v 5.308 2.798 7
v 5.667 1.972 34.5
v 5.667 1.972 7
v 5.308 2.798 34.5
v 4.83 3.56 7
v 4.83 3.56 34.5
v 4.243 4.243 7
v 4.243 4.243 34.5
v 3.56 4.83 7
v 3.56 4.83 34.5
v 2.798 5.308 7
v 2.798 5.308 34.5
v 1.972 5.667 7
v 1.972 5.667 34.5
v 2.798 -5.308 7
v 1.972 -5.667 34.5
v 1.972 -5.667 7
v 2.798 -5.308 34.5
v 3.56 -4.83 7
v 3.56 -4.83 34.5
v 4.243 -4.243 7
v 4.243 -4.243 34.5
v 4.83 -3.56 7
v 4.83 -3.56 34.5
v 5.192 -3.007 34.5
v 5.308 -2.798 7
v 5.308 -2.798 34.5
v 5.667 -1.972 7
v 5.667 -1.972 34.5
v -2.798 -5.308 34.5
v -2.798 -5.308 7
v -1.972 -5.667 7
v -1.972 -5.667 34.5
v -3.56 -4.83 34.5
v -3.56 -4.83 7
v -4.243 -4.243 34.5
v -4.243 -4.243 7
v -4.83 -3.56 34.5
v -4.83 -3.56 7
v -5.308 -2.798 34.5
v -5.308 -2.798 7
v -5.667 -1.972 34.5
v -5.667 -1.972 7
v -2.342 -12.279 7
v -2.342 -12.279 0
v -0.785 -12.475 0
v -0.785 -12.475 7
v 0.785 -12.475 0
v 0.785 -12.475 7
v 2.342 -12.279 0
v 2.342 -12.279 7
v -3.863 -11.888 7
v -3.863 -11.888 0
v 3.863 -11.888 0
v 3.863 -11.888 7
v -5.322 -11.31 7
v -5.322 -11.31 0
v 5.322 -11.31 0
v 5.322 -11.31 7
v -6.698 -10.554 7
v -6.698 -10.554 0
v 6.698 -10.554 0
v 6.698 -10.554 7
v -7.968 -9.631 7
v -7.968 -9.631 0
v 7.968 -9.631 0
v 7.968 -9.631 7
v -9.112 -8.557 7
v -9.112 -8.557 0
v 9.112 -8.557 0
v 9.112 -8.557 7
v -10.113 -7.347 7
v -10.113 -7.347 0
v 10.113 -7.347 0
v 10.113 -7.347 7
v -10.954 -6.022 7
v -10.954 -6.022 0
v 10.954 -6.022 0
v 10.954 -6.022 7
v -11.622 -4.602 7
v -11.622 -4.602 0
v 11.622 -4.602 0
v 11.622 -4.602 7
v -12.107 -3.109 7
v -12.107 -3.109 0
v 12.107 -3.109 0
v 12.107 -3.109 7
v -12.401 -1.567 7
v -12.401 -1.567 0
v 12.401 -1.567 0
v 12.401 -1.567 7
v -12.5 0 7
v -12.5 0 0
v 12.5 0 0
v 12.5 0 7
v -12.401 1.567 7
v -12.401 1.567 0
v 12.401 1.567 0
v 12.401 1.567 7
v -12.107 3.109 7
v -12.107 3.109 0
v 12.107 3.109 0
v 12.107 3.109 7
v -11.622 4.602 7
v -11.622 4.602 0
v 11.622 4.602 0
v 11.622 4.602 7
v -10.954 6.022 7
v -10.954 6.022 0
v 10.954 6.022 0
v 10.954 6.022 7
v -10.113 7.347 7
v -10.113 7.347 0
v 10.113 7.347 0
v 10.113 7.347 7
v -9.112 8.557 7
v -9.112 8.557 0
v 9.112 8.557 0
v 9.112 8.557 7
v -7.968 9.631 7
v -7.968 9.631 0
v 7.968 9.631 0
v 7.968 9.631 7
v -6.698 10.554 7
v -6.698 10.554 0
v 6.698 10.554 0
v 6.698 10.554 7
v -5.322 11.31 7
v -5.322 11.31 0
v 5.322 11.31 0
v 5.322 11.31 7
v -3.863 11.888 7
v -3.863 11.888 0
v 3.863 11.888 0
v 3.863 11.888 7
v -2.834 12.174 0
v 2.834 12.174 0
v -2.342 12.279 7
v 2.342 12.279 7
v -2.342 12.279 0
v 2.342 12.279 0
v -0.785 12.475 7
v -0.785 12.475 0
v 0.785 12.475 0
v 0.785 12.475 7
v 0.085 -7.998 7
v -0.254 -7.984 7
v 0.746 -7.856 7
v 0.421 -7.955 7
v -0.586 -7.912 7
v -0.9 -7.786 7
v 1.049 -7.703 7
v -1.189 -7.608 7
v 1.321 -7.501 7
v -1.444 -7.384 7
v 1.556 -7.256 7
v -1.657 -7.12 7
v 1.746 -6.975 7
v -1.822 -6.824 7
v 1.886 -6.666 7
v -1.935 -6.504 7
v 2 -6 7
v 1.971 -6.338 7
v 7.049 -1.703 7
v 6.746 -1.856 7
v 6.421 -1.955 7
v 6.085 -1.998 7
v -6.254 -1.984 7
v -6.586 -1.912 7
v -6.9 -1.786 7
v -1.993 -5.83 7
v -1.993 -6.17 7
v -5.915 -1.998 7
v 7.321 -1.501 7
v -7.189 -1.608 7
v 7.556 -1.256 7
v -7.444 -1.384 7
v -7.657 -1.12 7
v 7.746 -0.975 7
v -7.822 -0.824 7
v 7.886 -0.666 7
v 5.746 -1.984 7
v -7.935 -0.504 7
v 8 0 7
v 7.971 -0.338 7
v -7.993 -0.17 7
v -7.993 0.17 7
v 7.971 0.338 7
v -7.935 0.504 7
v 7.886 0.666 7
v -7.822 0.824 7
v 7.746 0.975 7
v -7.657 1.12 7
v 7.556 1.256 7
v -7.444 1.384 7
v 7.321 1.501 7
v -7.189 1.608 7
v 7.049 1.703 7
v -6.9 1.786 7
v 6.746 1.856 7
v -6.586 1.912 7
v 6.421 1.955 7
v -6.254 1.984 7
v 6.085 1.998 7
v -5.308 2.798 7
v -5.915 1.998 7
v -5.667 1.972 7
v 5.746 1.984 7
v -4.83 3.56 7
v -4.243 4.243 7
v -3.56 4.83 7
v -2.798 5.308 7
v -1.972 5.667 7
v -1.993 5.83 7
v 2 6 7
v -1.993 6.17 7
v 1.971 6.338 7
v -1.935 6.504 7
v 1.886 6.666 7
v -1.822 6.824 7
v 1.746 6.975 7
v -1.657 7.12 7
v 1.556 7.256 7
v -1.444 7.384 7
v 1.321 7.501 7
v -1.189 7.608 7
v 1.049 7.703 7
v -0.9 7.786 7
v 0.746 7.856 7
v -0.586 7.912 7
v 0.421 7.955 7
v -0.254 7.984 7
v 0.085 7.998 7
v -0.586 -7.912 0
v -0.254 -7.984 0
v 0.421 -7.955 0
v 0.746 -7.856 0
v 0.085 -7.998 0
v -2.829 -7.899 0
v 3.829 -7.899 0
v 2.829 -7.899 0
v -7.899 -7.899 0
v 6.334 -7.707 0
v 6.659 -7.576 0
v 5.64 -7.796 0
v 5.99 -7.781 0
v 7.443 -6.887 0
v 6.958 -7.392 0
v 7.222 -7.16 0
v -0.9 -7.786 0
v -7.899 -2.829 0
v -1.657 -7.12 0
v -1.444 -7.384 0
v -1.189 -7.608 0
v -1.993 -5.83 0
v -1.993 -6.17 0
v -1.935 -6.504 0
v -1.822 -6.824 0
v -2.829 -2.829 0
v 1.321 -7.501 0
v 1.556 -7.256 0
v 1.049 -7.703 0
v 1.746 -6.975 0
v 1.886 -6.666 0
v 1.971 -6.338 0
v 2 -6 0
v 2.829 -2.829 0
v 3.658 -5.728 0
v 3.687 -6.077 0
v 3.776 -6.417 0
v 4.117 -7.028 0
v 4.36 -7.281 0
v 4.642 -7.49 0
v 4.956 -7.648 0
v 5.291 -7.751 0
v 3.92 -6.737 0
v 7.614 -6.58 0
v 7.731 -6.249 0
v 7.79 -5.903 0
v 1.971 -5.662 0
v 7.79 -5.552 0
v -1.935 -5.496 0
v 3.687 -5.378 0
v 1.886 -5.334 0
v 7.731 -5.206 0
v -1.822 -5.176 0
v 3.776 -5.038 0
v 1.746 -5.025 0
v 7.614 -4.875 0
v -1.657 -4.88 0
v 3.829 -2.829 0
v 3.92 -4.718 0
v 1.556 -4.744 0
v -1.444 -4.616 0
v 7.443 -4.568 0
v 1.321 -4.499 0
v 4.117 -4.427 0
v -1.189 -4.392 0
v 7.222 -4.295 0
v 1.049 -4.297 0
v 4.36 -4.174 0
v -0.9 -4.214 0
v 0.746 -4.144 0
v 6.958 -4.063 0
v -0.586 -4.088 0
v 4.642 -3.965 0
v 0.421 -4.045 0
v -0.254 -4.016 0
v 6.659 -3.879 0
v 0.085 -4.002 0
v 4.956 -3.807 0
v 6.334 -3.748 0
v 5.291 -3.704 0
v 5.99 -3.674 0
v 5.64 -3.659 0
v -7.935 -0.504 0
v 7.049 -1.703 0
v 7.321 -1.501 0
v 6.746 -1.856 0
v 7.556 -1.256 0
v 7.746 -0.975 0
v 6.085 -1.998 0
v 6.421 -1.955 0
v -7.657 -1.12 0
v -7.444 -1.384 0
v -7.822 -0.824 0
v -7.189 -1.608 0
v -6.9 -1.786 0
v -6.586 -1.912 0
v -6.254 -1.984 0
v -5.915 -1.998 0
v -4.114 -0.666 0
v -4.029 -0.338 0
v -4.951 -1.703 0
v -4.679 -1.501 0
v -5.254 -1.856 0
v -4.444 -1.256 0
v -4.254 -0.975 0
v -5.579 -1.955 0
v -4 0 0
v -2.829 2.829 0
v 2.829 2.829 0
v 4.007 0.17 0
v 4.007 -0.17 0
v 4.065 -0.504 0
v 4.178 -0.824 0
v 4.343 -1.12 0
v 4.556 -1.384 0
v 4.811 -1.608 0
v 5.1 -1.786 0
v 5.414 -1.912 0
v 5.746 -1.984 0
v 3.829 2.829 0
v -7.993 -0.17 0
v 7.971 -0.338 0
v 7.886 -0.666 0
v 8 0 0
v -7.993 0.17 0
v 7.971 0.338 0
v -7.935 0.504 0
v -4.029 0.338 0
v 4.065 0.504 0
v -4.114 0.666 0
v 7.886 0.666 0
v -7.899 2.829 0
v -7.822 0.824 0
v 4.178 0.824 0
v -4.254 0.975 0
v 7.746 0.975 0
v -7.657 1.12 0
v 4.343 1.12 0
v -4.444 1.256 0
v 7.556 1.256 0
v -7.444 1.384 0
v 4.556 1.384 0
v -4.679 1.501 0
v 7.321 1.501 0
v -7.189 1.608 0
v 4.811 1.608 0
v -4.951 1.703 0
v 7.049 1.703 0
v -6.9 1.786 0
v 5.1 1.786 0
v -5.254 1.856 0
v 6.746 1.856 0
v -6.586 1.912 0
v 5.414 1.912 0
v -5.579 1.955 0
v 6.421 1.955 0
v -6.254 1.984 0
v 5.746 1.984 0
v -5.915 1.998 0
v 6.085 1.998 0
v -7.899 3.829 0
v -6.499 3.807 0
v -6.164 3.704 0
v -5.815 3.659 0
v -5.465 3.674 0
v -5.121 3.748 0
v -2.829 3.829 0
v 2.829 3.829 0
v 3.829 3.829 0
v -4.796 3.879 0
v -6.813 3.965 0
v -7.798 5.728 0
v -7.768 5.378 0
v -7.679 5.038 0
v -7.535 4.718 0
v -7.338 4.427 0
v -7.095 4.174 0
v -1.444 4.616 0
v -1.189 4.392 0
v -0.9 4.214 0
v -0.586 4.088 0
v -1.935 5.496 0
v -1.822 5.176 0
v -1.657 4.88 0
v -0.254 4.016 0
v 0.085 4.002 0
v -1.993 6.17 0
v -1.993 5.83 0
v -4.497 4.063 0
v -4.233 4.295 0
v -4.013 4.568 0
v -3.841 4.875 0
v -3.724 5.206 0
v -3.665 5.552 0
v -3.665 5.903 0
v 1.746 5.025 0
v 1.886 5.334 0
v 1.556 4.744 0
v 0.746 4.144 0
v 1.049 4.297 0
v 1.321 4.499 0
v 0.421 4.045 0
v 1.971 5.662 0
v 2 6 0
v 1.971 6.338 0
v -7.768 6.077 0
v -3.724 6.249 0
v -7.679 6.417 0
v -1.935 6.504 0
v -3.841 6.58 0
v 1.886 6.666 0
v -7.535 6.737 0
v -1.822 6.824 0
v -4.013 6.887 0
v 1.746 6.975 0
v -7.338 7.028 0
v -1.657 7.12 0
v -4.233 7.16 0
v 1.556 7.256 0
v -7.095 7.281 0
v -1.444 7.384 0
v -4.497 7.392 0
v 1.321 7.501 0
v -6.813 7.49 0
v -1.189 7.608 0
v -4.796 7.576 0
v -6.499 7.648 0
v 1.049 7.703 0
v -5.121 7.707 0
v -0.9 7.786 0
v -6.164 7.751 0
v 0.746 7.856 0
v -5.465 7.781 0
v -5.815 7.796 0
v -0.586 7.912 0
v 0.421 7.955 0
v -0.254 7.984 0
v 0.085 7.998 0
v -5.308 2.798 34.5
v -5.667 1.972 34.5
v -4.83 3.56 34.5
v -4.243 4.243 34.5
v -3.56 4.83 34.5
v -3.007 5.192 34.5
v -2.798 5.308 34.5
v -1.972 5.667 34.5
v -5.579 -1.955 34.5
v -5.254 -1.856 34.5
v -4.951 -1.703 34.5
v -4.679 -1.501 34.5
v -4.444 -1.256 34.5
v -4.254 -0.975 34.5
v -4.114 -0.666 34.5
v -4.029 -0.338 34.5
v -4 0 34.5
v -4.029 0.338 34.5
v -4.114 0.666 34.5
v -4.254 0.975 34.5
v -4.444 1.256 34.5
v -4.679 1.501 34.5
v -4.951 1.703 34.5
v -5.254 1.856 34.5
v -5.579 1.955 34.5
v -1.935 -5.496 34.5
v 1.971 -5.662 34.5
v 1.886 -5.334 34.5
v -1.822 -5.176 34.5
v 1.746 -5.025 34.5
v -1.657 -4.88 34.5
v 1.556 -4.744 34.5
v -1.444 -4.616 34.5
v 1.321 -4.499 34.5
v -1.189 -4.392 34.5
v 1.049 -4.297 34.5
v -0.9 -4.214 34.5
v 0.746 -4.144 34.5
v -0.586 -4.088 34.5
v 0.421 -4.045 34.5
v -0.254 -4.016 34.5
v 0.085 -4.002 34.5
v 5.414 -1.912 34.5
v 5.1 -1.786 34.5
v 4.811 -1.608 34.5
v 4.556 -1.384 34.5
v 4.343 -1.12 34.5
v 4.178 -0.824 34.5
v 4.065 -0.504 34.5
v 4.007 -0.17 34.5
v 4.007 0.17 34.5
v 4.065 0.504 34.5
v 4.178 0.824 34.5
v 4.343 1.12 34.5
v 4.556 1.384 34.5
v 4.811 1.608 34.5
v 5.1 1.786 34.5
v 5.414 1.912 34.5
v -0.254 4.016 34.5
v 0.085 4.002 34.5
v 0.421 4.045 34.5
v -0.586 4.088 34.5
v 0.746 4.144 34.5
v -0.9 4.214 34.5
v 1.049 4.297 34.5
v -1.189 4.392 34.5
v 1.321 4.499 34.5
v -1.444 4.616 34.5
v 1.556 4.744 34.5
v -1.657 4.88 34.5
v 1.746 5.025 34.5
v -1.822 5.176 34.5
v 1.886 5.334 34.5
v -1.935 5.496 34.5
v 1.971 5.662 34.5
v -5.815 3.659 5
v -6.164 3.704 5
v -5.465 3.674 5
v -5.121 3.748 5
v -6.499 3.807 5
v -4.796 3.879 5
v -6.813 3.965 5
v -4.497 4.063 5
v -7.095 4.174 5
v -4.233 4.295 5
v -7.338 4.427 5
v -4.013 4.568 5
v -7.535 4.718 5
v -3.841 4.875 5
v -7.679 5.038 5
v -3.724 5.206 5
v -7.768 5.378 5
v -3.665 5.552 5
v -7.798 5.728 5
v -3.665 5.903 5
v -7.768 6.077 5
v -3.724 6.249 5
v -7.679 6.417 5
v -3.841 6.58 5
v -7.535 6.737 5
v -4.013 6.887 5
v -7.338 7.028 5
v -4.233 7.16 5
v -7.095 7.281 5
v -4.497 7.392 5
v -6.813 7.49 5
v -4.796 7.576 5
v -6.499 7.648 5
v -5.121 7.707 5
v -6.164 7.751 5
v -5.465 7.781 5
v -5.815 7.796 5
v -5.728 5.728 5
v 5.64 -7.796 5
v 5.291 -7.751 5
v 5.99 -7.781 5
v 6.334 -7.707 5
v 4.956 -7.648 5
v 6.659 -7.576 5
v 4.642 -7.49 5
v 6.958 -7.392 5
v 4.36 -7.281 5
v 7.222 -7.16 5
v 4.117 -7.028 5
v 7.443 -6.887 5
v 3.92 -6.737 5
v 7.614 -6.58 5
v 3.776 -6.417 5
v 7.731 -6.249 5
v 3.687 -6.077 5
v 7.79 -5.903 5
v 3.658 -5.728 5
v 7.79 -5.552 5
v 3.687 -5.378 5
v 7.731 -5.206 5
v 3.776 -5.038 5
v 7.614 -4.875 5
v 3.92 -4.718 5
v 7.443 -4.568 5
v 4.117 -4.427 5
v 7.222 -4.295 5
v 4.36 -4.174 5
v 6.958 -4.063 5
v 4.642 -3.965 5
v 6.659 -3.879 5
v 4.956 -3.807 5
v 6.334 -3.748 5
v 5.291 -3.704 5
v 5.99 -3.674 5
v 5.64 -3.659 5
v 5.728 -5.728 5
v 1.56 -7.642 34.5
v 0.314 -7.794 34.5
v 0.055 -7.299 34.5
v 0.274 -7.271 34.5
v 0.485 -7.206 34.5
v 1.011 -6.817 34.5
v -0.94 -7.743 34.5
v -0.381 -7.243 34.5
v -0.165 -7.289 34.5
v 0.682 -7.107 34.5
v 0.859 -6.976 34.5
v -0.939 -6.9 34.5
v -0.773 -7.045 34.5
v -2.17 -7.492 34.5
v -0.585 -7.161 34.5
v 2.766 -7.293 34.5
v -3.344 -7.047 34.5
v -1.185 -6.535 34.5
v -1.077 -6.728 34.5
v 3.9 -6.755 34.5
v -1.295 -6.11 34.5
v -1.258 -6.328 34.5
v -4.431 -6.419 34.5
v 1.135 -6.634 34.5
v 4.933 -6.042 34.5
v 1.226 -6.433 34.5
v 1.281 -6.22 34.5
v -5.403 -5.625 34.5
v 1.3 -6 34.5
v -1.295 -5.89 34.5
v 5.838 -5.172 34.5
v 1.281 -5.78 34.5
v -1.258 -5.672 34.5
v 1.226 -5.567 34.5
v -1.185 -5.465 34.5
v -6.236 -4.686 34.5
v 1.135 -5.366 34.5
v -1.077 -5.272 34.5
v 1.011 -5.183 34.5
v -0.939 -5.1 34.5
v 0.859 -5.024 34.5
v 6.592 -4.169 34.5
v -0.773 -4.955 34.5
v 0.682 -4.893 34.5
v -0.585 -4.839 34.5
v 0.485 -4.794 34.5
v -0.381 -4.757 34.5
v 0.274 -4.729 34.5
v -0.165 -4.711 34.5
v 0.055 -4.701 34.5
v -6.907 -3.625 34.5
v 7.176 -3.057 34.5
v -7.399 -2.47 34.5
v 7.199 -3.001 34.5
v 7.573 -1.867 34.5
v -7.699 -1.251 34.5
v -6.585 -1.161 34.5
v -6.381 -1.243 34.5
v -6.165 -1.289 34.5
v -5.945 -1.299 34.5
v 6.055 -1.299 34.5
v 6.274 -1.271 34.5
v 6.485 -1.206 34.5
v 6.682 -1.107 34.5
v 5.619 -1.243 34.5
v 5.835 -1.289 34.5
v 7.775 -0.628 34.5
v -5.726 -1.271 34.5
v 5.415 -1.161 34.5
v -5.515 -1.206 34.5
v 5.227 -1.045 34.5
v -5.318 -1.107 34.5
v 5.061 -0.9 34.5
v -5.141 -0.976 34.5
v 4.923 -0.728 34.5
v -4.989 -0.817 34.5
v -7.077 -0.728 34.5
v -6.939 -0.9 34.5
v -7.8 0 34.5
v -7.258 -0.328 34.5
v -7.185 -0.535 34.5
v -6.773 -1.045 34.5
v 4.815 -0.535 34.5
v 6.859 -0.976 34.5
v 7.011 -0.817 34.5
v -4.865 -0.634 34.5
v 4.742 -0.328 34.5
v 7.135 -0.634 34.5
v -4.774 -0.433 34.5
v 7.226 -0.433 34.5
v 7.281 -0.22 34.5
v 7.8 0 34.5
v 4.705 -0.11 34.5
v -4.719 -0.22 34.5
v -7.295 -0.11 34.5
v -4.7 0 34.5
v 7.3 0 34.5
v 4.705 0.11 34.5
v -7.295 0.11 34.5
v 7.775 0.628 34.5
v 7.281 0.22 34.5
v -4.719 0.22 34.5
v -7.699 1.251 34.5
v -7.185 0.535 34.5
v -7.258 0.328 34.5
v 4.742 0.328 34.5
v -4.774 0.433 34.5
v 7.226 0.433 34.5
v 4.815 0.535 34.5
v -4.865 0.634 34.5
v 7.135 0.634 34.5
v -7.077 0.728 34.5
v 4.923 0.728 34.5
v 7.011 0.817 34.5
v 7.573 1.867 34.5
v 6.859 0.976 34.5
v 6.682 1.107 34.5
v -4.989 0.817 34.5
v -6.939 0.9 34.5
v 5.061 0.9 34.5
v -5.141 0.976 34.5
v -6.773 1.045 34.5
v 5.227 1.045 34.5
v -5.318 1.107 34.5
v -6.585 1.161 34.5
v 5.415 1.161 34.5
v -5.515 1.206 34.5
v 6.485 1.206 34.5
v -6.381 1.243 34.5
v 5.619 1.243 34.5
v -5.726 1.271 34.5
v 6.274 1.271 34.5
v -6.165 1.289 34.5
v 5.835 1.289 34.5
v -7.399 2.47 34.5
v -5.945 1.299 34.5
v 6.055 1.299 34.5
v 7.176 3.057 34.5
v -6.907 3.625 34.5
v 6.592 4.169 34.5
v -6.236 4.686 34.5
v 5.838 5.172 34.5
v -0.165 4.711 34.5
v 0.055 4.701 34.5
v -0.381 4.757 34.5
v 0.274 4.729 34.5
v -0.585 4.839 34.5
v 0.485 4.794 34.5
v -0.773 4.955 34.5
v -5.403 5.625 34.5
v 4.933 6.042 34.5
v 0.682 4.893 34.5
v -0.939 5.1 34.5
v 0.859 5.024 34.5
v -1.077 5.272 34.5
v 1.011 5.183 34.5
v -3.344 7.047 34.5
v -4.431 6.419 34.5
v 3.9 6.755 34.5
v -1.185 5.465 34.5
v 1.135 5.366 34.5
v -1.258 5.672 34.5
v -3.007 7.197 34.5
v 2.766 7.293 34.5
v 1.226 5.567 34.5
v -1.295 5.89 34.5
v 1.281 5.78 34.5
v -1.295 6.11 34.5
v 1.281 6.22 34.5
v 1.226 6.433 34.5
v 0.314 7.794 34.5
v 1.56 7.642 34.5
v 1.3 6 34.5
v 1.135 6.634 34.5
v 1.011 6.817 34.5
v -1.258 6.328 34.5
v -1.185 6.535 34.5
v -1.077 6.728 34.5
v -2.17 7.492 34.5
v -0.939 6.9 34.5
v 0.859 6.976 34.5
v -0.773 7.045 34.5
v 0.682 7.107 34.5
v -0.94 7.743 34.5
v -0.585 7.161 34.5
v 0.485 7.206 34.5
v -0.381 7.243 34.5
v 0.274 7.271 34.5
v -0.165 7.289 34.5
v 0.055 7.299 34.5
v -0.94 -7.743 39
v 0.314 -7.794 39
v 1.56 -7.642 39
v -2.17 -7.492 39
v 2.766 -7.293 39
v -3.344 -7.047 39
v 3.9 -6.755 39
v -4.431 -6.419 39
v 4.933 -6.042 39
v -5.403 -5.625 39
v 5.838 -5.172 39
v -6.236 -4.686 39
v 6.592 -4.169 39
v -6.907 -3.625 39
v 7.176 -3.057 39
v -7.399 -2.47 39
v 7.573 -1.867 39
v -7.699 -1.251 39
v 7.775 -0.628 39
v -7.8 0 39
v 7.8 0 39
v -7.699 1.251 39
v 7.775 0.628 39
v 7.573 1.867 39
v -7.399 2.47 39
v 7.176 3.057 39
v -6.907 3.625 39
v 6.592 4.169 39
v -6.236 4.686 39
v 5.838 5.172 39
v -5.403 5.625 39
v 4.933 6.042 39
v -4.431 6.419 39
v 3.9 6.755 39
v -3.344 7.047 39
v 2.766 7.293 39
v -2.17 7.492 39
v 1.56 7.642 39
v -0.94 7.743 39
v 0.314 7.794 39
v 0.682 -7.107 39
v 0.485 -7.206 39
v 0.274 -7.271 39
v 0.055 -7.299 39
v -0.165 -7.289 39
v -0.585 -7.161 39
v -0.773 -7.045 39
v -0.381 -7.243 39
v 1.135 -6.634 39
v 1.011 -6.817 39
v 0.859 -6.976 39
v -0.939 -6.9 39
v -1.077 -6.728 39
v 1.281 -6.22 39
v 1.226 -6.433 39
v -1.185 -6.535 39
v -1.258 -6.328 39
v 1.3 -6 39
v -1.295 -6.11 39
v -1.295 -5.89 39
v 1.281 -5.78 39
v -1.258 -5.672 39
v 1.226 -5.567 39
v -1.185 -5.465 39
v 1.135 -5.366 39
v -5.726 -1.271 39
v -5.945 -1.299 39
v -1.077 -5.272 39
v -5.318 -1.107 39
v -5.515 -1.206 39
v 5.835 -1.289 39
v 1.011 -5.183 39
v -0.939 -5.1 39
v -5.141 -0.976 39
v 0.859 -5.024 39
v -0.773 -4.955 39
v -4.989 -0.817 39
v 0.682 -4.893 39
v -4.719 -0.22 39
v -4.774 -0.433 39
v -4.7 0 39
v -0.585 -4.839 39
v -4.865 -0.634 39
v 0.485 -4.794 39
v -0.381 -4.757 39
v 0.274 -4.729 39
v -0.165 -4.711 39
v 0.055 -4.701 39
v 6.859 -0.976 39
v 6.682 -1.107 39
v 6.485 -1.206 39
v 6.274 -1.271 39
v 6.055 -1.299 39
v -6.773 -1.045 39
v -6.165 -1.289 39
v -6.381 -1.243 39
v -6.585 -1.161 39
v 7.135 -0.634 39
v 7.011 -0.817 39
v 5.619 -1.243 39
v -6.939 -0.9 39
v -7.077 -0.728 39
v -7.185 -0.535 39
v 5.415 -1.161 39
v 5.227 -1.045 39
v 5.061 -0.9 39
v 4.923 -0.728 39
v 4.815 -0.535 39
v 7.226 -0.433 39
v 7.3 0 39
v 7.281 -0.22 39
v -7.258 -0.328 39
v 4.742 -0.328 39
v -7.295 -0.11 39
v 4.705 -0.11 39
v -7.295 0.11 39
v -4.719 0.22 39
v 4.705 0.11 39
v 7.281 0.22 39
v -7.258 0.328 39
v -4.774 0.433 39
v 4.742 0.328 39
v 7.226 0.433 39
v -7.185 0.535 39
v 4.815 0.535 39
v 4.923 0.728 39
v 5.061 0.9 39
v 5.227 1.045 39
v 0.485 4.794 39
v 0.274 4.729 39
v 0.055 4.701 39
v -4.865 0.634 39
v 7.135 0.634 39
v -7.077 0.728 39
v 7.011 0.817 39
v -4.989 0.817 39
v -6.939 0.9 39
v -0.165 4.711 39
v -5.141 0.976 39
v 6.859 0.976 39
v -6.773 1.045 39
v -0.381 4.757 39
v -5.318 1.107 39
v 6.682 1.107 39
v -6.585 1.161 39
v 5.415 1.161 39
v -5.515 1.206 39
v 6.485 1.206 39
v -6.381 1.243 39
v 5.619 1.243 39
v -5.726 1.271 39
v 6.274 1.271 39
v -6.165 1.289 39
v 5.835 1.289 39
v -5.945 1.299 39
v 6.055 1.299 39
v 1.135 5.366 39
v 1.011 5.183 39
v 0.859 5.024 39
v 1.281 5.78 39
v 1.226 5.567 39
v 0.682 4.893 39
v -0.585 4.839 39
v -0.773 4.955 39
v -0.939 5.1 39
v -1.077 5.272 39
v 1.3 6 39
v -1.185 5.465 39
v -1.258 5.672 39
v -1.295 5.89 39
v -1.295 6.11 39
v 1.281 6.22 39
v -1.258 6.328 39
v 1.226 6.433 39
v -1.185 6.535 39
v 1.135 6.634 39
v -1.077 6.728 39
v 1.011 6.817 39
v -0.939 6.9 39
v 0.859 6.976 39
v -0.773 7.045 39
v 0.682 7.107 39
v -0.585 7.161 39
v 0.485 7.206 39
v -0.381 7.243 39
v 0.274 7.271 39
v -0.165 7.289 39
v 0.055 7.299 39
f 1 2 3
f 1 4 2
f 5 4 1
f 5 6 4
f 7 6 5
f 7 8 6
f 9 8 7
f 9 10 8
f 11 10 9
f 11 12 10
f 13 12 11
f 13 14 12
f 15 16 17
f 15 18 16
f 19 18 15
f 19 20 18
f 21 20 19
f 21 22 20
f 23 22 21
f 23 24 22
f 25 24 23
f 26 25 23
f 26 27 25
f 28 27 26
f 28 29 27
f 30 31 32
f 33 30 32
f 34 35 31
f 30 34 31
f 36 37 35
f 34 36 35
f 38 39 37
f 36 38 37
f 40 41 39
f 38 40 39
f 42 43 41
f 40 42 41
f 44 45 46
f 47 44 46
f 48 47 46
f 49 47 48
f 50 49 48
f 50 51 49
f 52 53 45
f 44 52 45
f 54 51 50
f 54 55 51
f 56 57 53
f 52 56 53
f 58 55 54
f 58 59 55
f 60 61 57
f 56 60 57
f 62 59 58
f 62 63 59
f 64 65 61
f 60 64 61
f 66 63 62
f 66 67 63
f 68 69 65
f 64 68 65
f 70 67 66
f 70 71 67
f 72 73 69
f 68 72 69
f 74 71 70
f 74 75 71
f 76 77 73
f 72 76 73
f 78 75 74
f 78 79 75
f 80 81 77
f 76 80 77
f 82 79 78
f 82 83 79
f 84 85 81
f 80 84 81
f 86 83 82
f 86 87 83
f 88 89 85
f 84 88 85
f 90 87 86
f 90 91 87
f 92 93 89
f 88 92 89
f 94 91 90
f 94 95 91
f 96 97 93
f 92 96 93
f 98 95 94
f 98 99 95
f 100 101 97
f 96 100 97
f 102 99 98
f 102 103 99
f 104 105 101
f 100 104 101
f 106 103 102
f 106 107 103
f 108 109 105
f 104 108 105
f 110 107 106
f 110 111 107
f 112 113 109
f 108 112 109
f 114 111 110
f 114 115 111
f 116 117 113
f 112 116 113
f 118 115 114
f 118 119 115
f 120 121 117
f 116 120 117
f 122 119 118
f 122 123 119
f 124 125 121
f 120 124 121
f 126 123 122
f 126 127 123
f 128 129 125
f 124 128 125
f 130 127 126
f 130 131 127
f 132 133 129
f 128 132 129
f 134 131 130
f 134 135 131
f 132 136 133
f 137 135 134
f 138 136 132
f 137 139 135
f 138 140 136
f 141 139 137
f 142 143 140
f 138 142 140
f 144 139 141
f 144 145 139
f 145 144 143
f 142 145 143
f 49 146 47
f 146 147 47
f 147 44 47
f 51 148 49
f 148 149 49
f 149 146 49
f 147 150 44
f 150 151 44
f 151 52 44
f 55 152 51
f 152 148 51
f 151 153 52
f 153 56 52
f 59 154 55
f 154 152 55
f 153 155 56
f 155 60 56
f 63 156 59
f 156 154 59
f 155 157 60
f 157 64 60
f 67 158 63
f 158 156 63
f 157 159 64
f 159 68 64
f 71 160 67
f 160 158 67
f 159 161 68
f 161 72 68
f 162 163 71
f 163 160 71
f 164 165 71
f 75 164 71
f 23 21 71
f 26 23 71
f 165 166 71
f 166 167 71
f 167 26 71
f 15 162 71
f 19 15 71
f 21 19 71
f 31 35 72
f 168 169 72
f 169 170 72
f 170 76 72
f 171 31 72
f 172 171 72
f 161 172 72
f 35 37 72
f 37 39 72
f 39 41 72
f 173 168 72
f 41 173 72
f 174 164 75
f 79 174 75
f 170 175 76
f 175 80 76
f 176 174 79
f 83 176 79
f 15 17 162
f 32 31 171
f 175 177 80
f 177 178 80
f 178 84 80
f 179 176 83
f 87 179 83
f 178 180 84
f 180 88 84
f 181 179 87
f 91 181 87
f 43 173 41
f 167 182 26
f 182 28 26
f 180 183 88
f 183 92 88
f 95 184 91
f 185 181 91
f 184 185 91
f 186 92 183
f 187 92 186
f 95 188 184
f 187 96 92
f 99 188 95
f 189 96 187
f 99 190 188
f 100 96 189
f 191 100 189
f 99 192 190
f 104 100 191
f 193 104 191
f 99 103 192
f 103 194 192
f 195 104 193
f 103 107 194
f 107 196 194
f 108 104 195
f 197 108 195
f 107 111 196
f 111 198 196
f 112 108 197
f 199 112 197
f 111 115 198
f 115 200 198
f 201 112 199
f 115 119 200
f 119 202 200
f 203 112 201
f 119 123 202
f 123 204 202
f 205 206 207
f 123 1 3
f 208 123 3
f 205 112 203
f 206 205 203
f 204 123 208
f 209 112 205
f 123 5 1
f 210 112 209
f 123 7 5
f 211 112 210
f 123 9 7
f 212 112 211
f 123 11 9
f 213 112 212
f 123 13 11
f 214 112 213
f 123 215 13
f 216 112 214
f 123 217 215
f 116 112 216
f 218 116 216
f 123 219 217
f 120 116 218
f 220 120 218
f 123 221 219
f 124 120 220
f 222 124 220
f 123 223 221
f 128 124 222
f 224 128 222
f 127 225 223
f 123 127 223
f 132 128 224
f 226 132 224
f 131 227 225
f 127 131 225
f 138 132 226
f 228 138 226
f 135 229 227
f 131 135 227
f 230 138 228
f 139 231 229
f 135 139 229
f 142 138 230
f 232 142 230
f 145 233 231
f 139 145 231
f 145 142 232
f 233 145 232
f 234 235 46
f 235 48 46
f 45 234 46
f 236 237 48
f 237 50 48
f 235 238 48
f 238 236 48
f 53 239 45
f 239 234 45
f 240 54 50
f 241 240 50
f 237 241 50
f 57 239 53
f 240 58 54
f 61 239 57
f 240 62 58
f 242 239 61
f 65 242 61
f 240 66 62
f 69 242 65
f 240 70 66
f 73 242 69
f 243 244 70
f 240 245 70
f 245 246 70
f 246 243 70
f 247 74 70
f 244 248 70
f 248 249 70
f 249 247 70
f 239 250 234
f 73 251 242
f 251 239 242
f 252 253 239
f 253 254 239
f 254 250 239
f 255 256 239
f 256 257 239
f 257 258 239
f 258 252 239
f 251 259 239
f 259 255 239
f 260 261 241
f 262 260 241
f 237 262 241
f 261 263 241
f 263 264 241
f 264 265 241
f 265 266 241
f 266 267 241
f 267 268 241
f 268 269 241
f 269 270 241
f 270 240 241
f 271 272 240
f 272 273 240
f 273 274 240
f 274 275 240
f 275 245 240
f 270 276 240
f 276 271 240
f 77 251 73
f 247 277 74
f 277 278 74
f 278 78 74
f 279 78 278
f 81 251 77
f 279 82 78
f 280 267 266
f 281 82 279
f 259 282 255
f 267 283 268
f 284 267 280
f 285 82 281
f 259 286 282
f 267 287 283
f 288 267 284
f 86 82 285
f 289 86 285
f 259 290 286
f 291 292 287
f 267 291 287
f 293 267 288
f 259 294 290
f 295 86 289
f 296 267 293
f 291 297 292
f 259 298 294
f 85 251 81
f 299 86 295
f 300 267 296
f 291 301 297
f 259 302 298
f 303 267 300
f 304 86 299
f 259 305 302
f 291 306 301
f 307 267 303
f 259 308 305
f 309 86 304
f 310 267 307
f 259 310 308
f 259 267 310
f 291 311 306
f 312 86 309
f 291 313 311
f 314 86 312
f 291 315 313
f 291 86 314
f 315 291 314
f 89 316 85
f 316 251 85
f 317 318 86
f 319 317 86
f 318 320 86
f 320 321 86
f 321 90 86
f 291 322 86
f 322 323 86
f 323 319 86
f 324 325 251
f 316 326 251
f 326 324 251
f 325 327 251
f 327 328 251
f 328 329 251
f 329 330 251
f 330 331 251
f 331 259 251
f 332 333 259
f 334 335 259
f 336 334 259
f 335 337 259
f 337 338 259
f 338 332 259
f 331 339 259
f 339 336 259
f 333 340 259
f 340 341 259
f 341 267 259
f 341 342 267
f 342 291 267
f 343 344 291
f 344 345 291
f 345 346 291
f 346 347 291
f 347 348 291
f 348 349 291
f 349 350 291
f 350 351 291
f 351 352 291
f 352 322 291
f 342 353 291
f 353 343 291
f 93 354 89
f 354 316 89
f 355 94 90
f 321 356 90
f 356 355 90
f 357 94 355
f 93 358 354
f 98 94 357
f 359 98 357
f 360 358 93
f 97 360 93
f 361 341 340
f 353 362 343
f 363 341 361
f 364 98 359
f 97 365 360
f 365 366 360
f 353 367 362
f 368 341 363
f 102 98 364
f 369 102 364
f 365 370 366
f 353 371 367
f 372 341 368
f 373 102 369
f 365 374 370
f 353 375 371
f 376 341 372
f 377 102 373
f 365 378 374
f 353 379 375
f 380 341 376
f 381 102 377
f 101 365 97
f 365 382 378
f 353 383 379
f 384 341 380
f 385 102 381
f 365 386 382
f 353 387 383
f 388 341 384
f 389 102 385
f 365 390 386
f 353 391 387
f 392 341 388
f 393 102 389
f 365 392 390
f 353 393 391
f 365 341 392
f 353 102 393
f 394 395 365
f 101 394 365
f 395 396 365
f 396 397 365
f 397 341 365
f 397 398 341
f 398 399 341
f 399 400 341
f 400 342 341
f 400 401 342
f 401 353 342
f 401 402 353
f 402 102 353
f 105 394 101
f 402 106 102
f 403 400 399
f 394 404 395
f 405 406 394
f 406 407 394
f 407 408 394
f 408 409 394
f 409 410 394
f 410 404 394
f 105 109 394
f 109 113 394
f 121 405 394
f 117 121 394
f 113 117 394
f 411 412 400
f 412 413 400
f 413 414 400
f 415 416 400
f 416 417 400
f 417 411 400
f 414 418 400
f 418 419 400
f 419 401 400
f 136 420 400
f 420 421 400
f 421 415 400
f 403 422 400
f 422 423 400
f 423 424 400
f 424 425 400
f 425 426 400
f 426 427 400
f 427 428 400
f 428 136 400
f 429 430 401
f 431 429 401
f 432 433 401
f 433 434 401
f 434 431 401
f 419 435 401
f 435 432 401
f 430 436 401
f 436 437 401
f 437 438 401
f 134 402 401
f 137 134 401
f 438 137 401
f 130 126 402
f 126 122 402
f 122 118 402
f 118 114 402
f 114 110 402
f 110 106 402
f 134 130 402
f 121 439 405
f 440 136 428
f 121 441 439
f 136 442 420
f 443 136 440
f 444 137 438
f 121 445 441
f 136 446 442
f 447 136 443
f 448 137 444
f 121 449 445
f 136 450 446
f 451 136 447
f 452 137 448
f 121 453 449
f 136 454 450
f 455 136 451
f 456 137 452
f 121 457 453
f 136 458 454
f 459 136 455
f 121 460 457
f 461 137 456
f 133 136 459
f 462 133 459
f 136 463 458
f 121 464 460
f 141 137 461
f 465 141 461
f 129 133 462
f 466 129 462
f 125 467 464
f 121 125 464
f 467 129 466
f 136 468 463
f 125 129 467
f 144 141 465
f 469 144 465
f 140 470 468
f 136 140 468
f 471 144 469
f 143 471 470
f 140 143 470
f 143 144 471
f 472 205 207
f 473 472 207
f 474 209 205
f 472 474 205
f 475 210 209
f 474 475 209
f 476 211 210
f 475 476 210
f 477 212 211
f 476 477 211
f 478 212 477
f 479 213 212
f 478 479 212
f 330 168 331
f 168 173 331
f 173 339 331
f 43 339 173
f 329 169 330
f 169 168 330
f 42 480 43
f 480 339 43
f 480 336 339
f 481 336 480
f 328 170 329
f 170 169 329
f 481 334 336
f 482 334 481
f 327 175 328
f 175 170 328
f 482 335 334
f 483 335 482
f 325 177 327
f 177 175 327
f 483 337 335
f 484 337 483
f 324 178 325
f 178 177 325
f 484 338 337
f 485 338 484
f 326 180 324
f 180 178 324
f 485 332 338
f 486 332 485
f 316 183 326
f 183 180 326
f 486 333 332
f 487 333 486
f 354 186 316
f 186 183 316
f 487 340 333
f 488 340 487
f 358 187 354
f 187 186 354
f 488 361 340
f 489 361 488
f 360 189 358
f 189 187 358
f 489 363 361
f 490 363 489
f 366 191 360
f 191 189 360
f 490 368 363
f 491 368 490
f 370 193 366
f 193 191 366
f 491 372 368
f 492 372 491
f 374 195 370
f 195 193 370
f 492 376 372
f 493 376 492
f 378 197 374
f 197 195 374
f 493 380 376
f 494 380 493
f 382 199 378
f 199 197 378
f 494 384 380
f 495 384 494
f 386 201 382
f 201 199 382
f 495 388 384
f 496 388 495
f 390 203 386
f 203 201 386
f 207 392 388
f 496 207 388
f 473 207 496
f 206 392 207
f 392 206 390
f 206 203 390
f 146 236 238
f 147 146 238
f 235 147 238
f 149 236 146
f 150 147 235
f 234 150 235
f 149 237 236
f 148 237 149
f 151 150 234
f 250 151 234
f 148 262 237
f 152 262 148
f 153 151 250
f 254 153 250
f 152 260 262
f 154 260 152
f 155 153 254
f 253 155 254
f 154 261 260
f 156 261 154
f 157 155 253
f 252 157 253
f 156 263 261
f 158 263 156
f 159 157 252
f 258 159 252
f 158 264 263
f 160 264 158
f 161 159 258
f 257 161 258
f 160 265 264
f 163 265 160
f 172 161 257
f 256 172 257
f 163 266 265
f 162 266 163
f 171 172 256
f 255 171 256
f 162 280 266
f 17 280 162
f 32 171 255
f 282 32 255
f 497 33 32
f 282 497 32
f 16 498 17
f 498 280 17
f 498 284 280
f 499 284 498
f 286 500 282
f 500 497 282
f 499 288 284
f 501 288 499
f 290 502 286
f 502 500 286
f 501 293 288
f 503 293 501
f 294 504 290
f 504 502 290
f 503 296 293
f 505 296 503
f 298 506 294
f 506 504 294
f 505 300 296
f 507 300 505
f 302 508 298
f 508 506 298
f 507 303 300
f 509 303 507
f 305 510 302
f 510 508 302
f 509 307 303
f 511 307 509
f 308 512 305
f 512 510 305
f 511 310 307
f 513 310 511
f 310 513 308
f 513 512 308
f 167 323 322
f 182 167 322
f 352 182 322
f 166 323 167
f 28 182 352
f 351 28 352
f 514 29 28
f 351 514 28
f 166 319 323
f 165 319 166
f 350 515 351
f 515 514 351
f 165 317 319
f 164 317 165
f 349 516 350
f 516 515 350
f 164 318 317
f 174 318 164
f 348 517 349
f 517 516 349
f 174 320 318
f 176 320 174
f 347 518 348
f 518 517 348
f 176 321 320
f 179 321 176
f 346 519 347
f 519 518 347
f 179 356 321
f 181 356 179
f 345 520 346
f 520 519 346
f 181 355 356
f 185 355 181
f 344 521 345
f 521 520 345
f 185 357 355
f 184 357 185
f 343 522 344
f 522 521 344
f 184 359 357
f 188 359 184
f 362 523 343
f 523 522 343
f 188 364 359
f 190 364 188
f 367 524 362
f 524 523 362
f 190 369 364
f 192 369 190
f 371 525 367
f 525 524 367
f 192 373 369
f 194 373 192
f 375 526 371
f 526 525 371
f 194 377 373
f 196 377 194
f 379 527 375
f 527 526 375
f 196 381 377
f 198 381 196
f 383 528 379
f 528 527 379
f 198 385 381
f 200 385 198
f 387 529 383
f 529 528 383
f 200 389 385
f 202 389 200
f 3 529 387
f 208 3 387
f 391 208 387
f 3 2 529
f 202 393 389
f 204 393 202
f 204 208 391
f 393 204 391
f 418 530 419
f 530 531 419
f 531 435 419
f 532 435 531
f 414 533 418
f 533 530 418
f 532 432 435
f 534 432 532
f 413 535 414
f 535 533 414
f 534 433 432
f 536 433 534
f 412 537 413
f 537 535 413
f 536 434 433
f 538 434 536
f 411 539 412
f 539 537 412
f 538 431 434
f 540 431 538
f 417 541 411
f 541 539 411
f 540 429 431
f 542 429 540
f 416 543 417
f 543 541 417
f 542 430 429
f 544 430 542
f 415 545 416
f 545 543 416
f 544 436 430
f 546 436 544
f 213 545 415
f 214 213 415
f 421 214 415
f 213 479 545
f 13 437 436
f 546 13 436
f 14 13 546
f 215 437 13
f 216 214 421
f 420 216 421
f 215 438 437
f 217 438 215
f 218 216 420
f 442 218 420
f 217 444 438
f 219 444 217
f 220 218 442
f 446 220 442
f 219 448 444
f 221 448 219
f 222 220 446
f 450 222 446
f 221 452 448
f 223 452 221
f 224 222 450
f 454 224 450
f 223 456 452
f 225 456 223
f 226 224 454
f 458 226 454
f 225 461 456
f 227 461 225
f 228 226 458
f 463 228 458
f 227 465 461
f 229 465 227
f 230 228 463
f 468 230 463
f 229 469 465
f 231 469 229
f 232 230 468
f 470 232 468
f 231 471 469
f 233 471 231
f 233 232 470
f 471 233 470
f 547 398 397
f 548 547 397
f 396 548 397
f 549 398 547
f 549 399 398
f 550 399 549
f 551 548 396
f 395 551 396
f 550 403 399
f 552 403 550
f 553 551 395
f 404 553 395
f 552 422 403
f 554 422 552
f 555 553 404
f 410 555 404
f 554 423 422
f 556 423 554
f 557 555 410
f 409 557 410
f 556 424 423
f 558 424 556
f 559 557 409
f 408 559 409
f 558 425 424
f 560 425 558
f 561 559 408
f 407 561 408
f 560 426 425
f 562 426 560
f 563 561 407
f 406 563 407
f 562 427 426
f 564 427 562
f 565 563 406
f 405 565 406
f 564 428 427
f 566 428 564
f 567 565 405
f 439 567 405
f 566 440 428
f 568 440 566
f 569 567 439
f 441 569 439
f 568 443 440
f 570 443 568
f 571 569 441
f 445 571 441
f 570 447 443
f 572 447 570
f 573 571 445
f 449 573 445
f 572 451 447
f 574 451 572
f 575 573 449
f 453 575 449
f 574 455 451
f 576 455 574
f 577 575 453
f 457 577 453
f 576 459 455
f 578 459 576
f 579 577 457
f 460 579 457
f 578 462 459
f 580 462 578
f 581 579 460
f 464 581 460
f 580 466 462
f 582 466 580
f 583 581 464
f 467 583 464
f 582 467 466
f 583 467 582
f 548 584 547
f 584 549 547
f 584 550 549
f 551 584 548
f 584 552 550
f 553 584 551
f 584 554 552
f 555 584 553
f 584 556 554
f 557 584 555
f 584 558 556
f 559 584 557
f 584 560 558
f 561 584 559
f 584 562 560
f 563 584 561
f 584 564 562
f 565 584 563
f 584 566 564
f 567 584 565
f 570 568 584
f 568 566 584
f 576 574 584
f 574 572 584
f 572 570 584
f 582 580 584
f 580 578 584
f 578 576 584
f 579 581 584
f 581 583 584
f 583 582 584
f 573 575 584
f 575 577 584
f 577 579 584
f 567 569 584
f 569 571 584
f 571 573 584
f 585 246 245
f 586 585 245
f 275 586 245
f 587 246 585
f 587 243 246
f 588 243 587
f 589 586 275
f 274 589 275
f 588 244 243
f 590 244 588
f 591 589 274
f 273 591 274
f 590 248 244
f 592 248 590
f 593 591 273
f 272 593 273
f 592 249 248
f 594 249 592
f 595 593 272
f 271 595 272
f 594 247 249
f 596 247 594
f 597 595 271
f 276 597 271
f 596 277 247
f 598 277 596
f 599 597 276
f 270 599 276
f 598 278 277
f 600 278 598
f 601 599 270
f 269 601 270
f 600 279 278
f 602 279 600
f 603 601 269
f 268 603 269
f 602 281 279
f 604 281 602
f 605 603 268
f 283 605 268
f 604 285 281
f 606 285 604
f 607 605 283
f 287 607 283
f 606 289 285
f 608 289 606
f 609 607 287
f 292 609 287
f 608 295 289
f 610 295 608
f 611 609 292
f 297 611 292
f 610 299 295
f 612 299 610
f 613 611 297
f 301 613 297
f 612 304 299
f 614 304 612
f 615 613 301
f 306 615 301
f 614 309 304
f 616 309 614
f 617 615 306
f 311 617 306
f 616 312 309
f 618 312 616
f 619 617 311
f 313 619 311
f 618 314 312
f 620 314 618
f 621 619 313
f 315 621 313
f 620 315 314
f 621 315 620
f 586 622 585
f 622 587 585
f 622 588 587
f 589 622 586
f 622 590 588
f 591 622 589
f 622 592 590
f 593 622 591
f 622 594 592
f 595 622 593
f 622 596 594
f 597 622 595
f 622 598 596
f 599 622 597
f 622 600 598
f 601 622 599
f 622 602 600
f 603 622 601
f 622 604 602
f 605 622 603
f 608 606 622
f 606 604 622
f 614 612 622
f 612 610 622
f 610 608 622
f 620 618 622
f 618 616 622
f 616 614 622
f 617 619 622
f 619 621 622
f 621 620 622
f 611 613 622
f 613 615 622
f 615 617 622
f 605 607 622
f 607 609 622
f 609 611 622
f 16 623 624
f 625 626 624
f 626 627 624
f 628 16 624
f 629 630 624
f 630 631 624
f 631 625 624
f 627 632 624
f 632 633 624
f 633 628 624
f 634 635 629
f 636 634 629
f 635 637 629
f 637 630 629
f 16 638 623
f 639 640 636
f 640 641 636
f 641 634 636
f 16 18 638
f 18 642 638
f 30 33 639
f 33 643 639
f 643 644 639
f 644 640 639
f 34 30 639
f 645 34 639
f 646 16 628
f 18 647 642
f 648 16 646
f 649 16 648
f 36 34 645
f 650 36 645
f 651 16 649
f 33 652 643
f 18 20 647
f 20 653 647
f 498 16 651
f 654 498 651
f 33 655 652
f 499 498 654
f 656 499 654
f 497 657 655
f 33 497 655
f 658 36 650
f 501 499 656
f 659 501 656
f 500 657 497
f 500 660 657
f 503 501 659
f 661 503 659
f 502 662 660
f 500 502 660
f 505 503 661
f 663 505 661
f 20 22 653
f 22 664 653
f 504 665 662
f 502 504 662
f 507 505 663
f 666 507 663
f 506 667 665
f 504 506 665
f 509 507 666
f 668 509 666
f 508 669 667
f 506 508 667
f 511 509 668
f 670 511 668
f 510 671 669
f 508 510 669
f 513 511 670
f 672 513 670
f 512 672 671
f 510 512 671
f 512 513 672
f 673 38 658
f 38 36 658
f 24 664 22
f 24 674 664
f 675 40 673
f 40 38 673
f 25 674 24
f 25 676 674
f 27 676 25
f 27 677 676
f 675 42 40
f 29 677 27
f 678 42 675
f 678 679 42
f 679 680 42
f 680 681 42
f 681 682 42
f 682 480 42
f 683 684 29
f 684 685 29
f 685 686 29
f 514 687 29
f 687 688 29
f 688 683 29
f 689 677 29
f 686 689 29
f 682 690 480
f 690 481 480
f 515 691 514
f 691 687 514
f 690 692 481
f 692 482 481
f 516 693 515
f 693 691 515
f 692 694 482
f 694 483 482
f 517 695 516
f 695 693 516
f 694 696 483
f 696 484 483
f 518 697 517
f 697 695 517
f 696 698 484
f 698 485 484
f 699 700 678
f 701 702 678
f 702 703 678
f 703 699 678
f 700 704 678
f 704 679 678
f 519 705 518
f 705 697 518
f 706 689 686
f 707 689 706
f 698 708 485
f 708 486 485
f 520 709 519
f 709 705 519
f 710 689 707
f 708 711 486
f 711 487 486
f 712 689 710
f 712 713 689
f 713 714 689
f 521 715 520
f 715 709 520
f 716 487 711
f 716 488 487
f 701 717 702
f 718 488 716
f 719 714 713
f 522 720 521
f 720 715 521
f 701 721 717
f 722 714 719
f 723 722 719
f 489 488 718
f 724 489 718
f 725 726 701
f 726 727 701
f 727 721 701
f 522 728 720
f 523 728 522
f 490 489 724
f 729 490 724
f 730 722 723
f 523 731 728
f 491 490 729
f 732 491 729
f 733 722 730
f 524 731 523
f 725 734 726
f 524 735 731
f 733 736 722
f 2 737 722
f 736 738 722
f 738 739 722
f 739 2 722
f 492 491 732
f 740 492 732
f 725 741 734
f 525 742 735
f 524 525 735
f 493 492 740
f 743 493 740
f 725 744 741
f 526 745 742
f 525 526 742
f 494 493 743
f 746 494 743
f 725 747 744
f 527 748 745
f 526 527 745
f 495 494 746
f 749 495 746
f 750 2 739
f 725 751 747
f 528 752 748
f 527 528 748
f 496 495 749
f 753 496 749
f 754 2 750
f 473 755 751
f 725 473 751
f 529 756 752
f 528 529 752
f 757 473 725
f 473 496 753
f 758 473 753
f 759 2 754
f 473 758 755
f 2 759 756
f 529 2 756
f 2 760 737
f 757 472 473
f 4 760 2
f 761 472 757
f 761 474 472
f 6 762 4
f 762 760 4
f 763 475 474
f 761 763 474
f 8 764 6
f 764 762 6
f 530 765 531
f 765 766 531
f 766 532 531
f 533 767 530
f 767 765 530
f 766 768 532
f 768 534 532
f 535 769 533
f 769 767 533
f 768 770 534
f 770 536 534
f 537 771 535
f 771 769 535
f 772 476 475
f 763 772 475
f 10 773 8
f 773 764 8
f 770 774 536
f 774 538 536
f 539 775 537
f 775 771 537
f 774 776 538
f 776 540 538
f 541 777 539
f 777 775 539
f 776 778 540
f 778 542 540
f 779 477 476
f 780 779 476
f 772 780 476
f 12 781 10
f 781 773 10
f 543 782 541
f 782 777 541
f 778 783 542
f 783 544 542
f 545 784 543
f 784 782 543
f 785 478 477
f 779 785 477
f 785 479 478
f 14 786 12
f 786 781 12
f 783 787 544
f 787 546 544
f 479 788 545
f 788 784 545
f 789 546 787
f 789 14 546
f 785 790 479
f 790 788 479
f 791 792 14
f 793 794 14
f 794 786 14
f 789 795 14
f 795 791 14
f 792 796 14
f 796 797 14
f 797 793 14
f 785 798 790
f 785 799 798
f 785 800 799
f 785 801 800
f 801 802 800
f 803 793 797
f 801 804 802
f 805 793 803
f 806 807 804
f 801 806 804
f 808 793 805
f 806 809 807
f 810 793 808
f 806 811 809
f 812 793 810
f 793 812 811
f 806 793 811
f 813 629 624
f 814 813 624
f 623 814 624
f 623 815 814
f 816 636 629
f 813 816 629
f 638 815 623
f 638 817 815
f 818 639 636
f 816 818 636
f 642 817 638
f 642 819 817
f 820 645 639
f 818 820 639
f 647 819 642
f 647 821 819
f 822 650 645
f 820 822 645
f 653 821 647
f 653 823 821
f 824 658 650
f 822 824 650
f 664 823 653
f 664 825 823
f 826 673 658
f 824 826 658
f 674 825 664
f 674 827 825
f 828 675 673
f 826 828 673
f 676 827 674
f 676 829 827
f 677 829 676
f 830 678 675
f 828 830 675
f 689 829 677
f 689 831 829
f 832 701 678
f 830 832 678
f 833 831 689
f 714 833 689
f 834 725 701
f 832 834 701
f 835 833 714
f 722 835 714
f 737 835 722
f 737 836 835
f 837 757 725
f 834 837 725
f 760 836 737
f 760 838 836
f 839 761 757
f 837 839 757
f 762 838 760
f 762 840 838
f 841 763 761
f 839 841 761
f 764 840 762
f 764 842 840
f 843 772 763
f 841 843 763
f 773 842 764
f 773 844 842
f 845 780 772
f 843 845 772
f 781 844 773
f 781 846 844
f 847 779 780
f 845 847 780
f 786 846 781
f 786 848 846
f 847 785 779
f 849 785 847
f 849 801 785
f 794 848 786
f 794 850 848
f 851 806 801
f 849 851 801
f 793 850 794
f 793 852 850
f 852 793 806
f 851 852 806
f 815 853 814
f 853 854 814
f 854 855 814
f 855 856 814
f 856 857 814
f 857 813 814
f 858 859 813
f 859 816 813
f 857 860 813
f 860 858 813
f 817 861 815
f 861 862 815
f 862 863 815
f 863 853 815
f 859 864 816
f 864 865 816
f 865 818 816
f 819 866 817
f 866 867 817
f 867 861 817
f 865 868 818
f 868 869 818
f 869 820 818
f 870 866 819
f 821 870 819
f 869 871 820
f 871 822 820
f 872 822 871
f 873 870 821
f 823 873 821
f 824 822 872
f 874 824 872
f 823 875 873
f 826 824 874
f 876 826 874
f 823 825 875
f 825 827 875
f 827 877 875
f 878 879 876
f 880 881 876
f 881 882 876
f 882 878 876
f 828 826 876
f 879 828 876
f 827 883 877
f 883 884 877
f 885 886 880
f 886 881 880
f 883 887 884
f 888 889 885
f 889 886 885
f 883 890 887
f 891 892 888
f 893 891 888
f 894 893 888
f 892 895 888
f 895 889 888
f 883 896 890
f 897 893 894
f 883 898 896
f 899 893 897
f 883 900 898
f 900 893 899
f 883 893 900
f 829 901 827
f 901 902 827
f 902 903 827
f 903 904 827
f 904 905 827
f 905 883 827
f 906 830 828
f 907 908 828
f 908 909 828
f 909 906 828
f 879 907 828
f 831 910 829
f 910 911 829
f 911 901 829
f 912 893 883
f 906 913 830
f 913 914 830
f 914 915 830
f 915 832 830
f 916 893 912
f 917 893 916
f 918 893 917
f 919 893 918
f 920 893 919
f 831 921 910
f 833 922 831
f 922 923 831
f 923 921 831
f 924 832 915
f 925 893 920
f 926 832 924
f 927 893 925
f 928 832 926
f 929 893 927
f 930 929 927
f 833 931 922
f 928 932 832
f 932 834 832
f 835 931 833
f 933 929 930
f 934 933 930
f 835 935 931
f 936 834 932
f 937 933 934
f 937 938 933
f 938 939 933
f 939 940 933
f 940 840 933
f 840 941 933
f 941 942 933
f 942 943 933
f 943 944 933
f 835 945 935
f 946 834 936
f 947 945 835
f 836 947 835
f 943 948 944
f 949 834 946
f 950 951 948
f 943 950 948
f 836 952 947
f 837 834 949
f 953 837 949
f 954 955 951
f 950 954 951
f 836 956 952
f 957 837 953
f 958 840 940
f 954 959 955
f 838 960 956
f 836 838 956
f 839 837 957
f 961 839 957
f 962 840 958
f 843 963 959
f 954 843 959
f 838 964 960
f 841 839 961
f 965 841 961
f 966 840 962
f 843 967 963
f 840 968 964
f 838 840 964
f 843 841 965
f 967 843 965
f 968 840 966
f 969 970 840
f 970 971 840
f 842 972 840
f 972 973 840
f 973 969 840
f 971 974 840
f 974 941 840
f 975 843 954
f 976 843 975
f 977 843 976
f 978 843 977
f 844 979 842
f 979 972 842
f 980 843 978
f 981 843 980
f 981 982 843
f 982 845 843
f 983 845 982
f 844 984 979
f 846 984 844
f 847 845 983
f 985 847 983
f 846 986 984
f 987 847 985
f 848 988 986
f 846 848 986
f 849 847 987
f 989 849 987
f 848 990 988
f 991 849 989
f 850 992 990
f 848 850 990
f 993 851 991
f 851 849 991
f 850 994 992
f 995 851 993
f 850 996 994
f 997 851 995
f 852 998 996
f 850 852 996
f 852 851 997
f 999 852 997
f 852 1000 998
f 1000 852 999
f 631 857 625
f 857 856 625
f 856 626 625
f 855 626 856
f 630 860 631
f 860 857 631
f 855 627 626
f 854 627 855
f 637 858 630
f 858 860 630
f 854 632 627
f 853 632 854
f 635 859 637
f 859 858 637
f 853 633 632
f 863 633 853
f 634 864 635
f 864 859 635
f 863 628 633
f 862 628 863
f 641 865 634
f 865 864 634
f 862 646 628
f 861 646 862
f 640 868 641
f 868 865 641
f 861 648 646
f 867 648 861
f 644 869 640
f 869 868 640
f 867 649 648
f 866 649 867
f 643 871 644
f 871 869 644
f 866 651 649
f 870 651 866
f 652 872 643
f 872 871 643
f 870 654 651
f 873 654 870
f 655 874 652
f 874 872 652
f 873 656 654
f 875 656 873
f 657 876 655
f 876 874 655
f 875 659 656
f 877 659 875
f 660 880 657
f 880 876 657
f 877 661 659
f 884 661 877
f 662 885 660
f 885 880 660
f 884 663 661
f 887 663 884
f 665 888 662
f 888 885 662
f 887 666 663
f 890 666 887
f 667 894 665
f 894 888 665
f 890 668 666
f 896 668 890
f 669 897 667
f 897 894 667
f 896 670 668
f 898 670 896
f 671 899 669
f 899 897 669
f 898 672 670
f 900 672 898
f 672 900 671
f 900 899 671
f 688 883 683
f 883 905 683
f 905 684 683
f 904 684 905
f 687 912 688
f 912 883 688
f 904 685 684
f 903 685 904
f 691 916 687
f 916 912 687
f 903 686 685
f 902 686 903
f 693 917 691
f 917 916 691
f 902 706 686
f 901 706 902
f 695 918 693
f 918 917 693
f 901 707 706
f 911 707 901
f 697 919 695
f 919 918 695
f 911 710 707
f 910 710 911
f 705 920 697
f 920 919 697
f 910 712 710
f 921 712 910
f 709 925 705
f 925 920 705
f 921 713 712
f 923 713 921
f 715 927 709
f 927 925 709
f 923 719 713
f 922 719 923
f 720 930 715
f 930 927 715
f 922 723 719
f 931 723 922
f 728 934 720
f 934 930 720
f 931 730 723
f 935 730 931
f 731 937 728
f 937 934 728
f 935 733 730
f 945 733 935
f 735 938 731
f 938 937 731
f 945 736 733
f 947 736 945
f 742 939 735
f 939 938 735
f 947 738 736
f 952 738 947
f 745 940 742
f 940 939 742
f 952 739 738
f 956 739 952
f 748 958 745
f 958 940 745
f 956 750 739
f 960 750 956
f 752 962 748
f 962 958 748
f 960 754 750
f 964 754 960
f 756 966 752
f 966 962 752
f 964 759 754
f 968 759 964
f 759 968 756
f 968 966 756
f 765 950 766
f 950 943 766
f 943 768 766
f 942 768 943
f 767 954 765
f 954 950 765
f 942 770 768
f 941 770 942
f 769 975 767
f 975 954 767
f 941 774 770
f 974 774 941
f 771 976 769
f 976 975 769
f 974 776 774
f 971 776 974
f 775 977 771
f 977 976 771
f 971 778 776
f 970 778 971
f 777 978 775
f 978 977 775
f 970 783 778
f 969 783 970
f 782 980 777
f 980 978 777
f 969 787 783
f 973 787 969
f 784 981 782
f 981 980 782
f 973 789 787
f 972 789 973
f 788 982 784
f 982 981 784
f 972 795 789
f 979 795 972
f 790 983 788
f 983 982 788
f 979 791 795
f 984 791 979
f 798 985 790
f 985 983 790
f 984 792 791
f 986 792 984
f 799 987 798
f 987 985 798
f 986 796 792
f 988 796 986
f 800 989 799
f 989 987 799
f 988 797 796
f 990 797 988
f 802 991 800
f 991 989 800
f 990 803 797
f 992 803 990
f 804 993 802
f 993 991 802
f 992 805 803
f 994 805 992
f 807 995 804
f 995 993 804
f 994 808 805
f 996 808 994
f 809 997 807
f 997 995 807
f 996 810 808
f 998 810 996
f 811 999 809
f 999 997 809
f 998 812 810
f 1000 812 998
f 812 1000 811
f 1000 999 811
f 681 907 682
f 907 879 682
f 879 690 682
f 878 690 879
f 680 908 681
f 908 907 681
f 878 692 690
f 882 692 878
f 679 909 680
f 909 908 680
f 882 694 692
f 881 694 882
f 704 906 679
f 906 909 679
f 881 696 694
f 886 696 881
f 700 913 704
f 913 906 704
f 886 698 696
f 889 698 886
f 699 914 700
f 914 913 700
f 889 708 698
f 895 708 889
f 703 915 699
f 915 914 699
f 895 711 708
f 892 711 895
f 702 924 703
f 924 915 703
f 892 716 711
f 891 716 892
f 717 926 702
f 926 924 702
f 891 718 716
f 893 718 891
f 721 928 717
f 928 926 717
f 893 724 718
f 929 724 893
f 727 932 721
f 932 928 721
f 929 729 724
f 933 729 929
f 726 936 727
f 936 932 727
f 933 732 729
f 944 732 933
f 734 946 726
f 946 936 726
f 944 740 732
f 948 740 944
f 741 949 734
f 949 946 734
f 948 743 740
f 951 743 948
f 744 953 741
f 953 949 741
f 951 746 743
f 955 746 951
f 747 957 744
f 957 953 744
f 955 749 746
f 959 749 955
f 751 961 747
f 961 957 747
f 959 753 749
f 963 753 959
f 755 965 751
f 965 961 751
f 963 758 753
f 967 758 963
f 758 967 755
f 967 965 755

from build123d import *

# Parameters (mm, degrees)
SKETCH1_R           = 12.5
BOSS_EXTRUDE1_DEPTH = 7
SKETCH2_R           = 6
BOSS_EXTRUDE2_DEPTH = 27.5
SKETCH3_R           = 2
CUT_EXTRUDE1_DEPTH  = 35.5
SKETCH4_R           = 2.07
CUT_EXTRUDE2_DEPTH  = 5
SKETCH5_R           = 7.8
BOSS_EXTRUDE3_DEPTH = 4.5
SKETCH6_R           = 1.3
CUT_EXTRUDE3_DEPTH  = 4.5


with BuildPart() as part:
    # Sketch1 → Boss-Extrude1 (new body)
    with BuildSketch(Plane.XY):
        Circle(SKETCH1_R)
    extrude(amount=BOSS_EXTRUDE1_DEPTH)

    # Sketch2 → Boss-Extrude2 (add)
    with BuildSketch(Plane.XY.offset(7)):
        Circle(SKETCH2_R)
    extrude(amount=BOSS_EXTRUDE2_DEPTH)

    # Sketch3 → Cut-Extrude1 (cut, through all)
    with BuildSketch(Plane.XY.offset(34.5)):
        with Locations((0, 6)):
            Circle(SKETCH3_R)
        with Locations((6, 0)):
            Circle(SKETCH3_R)
        with Locations((0, -6)):
            Circle(SKETCH3_R)
        with Locations((-6, 0)):
            Circle(SKETCH3_R)
    extrude(amount=-CUT_EXTRUDE1_DEPTH, mode=Mode.SUBTRACT)

    # Sketch4 → Cut-Extrude2 (cut)
    with BuildSketch(Plane(origin=(0, 0, 0), x_dir=(-1, 0, 0), z_dir=(0, 0, -1))):
        with Locations((5.727564928, 5.727564928)):
            Circle(SKETCH4_R)
        with Locations((-5.727564928, -5.727564928)):
            Circle(SKETCH4_R)
    extrude(amount=-CUT_EXTRUDE2_DEPTH, mode=Mode.SUBTRACT)

    # Sketch5 → Boss-Extrude3 (add)
    with BuildSketch(Plane.XY.offset(34.5)):
        Circle(SKETCH5_R)
    extrude(amount=BOSS_EXTRUDE3_DEPTH)

    # Sketch6 → Cut-Extrude3 (cut)
    with BuildSketch(Plane.XY.offset(39)):
        with Locations((-6, 0)):
            Circle(SKETCH6_R)
        with Locations((0, 6)):
            Circle(SKETCH6_R)
        with Locations((6, 0)):
            Circle(SKETCH6_R)
        with Locations((0, -6)):
            Circle(SKETCH6_R)
    extrude(amount=-CUT_EXTRUDE3_DEPTH, mode=Mode.SUBTRACT)


solid = part.part
